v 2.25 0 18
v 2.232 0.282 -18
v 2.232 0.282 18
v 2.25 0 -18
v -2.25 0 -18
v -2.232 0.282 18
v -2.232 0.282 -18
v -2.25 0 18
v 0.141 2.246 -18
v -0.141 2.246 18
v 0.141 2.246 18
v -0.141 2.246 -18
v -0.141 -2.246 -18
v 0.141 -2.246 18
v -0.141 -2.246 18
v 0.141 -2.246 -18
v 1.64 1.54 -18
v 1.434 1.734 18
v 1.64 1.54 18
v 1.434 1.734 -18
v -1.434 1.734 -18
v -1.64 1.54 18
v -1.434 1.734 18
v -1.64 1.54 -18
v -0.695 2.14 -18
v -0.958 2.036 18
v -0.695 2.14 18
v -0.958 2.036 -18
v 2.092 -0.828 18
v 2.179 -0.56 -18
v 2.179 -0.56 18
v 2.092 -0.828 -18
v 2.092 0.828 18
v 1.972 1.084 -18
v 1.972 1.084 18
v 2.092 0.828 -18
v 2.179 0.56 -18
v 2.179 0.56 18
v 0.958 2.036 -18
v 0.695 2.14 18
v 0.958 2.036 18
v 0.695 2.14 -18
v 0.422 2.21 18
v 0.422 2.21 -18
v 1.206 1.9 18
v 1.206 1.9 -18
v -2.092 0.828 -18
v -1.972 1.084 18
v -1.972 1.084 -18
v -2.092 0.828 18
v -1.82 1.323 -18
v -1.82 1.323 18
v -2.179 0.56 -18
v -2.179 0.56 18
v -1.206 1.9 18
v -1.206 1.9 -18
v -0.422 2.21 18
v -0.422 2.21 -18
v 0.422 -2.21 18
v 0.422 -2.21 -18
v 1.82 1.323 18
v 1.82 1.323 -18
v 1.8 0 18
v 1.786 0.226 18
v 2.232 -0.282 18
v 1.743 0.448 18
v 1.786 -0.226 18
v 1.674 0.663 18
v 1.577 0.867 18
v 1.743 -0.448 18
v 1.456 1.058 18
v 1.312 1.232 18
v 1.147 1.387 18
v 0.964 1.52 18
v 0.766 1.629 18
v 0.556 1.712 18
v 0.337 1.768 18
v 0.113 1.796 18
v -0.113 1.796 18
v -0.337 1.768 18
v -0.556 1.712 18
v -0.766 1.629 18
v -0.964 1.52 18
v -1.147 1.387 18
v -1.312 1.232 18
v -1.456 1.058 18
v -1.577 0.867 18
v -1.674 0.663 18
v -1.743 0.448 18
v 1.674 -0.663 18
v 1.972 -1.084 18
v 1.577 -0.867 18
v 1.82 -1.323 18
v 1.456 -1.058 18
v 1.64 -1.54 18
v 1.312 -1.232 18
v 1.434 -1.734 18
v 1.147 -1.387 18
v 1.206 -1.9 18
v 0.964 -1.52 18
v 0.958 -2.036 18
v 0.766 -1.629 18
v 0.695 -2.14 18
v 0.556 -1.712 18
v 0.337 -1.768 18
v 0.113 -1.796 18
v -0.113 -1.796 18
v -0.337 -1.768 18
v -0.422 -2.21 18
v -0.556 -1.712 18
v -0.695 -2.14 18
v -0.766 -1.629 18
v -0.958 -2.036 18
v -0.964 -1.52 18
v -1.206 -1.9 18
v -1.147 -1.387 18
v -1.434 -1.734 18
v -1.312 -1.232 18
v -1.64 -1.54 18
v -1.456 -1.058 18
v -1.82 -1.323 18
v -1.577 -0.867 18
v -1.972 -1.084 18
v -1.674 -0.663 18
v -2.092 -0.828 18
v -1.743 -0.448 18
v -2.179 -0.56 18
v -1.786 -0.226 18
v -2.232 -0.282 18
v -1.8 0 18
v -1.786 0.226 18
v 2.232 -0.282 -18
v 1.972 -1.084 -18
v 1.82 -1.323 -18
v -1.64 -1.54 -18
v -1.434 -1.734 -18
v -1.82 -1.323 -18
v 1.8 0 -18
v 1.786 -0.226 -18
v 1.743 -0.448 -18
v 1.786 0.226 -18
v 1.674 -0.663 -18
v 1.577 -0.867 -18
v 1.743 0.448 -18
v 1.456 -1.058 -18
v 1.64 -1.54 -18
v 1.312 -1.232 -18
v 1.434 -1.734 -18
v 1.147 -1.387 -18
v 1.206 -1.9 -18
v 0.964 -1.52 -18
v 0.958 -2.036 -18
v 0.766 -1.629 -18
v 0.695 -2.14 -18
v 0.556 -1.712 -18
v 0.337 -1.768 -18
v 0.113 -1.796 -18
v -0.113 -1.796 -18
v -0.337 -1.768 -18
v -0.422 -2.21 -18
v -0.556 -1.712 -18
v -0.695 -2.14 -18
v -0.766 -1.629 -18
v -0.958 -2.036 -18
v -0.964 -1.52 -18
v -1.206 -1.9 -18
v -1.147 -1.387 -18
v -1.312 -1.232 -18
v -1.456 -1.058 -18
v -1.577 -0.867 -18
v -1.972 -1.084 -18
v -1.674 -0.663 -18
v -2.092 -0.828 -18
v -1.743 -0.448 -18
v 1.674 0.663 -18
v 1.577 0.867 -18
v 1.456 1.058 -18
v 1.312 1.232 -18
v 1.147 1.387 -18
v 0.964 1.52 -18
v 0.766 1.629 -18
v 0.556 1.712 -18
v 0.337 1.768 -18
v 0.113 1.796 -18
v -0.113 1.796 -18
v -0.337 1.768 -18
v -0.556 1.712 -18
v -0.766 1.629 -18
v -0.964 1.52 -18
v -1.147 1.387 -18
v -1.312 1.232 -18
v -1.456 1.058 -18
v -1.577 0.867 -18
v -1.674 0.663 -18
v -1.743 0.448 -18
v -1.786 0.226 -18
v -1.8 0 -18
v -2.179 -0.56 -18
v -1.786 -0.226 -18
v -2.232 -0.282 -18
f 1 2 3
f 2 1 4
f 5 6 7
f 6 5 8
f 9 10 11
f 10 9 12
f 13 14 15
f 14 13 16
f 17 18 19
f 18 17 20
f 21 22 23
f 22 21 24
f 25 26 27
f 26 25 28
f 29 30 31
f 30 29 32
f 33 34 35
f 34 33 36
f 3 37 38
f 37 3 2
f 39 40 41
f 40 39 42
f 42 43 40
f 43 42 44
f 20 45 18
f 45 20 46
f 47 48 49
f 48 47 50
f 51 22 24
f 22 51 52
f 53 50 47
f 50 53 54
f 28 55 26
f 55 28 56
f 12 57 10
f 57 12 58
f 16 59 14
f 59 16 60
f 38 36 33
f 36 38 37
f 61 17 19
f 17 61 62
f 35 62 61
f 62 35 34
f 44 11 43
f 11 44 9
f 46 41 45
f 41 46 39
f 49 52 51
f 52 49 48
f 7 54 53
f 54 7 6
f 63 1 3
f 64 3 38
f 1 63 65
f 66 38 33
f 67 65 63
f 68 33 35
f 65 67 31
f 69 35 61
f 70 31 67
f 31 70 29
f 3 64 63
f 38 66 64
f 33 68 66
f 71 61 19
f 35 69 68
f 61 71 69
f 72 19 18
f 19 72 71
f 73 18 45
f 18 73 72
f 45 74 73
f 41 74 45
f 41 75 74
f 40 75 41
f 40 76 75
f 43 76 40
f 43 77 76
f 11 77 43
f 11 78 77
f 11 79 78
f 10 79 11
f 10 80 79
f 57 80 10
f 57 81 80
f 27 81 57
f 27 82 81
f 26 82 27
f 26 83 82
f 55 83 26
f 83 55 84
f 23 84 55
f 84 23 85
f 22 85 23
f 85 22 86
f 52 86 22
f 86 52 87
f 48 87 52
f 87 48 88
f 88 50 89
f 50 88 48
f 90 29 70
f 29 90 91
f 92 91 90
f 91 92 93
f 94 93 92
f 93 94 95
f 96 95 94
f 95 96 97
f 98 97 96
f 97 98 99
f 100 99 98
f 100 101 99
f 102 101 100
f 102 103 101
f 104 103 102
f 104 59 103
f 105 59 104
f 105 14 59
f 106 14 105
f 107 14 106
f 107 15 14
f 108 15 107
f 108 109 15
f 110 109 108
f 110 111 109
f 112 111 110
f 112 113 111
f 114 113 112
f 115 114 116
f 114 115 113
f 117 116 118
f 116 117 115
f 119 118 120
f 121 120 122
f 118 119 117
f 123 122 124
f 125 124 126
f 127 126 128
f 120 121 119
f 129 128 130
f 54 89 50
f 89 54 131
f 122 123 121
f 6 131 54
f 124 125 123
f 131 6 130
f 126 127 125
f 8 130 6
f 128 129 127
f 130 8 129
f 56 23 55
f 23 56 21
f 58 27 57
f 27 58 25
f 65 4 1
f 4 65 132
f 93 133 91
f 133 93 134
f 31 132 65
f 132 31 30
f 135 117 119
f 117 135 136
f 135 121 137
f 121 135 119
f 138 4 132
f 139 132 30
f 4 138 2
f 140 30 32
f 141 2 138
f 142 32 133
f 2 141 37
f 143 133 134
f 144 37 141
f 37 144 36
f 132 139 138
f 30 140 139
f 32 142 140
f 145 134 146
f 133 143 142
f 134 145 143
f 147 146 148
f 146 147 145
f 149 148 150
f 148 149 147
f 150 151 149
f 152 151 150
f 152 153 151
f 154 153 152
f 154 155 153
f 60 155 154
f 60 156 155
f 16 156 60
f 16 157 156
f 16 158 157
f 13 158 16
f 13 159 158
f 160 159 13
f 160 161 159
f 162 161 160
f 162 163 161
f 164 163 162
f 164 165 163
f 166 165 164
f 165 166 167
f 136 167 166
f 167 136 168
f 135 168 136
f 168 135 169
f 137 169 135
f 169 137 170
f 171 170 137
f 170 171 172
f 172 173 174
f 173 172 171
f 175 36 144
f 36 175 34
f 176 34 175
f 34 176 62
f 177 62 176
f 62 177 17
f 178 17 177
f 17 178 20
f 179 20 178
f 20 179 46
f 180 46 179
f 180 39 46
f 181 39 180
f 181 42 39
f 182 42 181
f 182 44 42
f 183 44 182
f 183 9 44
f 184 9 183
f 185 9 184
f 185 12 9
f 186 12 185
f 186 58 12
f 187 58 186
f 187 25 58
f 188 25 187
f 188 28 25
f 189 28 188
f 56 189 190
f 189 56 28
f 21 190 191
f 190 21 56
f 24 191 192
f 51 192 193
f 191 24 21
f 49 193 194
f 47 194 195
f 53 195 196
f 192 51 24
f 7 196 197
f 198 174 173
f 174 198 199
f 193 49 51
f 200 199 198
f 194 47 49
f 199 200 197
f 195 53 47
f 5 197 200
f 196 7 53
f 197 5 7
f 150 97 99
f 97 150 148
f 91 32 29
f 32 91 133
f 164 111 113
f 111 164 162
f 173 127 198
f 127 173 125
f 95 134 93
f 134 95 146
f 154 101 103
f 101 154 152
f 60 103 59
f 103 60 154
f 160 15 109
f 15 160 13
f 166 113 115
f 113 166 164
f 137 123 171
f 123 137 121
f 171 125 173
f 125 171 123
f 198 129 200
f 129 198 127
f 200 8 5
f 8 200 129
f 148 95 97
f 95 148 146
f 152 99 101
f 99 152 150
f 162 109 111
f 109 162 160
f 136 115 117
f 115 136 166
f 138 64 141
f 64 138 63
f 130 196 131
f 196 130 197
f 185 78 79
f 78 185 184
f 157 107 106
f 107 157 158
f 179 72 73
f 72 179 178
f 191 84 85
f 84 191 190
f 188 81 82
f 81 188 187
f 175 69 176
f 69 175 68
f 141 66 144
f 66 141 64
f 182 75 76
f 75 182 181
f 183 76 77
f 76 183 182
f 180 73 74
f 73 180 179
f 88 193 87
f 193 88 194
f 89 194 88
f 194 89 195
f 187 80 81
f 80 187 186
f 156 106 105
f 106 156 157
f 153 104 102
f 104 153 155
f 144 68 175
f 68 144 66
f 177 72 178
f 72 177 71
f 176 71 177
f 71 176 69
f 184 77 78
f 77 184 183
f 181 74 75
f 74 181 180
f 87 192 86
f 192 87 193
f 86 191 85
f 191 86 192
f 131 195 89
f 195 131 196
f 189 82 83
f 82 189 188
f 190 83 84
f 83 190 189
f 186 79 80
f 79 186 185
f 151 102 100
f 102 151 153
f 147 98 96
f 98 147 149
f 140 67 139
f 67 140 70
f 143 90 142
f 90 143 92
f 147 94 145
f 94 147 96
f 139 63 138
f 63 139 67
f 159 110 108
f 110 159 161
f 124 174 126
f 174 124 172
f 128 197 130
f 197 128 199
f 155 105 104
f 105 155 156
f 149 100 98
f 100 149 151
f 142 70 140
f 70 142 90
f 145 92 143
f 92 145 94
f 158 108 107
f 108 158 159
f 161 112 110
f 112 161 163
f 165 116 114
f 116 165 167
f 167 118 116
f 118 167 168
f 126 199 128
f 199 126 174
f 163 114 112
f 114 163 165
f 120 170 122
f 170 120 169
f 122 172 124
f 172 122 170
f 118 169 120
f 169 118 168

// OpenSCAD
$fn = 50;


difference() {
	union() {
		translate(v = [0, 0, -18.0000000000]) {
			cylinder(h = 36, r = 2.2500000000);
		}
	}
	union() {
		translate(v = [0, 0, -100.0000000000]) {
			cylinder(h = 200, r = 1.8000000000);
		}
	}
}
